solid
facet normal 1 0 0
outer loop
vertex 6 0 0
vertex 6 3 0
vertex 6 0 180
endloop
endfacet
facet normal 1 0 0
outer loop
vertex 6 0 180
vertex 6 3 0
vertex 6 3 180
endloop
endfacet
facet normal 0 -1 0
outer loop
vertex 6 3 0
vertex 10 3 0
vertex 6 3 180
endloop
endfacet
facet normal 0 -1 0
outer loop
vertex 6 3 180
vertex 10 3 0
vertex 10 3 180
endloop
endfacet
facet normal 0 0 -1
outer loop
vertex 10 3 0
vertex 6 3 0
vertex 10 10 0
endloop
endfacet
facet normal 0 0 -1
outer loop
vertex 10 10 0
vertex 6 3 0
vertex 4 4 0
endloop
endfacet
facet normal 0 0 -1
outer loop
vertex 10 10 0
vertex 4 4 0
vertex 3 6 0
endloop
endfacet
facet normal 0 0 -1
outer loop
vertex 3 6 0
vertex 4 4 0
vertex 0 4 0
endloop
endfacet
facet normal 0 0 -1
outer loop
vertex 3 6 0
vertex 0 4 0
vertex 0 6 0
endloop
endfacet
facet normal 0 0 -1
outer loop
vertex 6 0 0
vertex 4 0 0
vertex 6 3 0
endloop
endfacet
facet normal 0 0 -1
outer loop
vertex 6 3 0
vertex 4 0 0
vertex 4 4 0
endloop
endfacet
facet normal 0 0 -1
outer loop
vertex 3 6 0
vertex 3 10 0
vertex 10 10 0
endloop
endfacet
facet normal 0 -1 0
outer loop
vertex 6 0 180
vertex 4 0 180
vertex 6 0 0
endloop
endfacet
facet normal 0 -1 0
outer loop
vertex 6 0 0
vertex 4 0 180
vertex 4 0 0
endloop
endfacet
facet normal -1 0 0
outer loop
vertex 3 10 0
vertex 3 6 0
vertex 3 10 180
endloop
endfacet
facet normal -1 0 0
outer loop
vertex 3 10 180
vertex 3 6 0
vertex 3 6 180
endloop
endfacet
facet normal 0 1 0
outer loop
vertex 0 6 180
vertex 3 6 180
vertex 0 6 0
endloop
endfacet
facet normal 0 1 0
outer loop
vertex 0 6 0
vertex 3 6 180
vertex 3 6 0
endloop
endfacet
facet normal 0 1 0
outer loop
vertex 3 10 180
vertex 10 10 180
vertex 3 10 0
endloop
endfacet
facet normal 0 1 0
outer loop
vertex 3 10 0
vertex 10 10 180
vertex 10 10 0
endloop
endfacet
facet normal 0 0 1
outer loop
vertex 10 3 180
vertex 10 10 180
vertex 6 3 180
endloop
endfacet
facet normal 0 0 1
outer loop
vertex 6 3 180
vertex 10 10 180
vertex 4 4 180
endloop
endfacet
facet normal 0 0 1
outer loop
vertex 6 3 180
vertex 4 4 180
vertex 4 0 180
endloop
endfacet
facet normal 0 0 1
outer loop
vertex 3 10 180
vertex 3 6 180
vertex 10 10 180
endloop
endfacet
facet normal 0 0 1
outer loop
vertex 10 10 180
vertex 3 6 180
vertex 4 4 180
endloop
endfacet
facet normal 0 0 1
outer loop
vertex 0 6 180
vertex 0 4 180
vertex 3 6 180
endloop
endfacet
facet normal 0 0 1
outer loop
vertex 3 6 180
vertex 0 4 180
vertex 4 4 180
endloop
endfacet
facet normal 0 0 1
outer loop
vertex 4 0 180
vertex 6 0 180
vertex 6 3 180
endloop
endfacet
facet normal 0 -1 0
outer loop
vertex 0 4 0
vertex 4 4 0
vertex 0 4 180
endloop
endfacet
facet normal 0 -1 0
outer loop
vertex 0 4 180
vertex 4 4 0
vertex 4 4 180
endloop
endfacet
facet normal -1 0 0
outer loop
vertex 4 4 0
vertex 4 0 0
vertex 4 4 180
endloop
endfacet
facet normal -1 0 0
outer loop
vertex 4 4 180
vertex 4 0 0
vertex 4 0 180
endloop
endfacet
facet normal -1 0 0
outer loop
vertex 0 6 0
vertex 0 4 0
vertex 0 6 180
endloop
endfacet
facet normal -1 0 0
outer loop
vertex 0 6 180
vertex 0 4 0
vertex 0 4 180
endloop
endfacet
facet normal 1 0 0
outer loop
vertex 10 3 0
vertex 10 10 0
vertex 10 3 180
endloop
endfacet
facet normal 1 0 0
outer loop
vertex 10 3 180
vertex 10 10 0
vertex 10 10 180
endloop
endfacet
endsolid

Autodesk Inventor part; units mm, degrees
ref_plane "YZ Plane" through (0, 0, 0) normal (1, 0, 0) x (0, 1, 0)
ref_plane "XZ Plane" through (0, 0, 0) normal (0, 1, 0) x (-1, 0, 0)
sketch "Skizze1" plane through (0, 0, 0) normal (0, 0, 1) x (1, 0, 0)
  line L0 (0, 0) -> (10, 0)
  line L1 (10, 0) -> (10, 10)
  line L2 (10, 10) -> (0, 10)
  line L3 (0, 10) -> (0, 0)
extrude "Extrusion1" add sketch "Skizze1" along normal blind 180
sketch "Skizze2" plane through (0, 0, 0) normal (0, 0, 1) x (1, 0, 0)
  line L0 (0, 0) -> (4, 0)
  line L1 (4, 0) -> (4, 4)
  line L2 (4, 4) -> (0, 4)
  line L3 (0, 4) -> (0, 0)
extrude "Extrusion2" cut sketch "Skizze2" along normal blind 180
sketch "Skizze3" plane through (0, 0, 0) normal (0, 0, 1) x (1, 0, 0)
  line L0 (-3, 6) -> (3, 6)
  line L1 (3, 6) -> (3, 10)
  line L2 (3, 10) -> (-3, 10)
  line L3 (-3, 10) -> (-3, 6)
extrude "Extrusion3" cut sketch "Skizze3" along normal blind 180
sketch "Skizze4" plane through (0, 0, 0) normal (0, 0, 1) x (1, 0, 0)
  line L0 (-3, -10) -> (3, -10)
  line L1 (3, -10) -> (3, -6)
  line L2 (3, -6) -> (-3, -6)
  line L3 (-3, -6) -> (-3, -10)
extrude "Extrusion4" cut sketch "Skizze4" along normal blind 180
sketch "Skizze5" plane through (0, 0, 0) normal (0, 0, 1) x (1, 0, 0)
  line L0 (-10, -3) -> (-6, -3)
  line L1 (-6, -3) -> (-6, 3)
  line L2 (-6, 3) -> (-10, 3)
  line L3 (-10, 3) -> (-10, -3)
extrude "Extrusion5" cut sketch "Skizze5" along normal blind 180
sketch "Skizze6" plane through (0, 0, 0) normal (0, 0, 1) x (1, 0, 0)
  line L0 (6, -3) -> (10, -3)
  line L1 (10, -3) -> (10, 3)
  line L2 (10, 3) -> (6, 3)
  line L3 (6, 3) -> (6, -3)
extrude "Extrusion6" cut sketch "Skizze6" along normal blind 180
ref_plane "Arbeitsebene1" through (0, 0, 180) normal (0, 0, 1) x (1, 0, 0)
sketch "Skizze7" plane through (0, 0, 0) normal (0, 0, 1) x (1, 0, 0)
  circle A0 centre (0, 0) radius 2.5
extrude "Extrusion7" cut sketch "Skizze7" along normal blind 10
sketch "Skizze8" plane through (0, 0, 180) normal (0, 0, 1) x (1, 0, 0)
  circle A0 centre (0, 0) radius 2.5
extrude "Extrusion8" cut sketch "Skizze8" along normal blind 10
properties part number "Aluprofil_20x20_L180"
